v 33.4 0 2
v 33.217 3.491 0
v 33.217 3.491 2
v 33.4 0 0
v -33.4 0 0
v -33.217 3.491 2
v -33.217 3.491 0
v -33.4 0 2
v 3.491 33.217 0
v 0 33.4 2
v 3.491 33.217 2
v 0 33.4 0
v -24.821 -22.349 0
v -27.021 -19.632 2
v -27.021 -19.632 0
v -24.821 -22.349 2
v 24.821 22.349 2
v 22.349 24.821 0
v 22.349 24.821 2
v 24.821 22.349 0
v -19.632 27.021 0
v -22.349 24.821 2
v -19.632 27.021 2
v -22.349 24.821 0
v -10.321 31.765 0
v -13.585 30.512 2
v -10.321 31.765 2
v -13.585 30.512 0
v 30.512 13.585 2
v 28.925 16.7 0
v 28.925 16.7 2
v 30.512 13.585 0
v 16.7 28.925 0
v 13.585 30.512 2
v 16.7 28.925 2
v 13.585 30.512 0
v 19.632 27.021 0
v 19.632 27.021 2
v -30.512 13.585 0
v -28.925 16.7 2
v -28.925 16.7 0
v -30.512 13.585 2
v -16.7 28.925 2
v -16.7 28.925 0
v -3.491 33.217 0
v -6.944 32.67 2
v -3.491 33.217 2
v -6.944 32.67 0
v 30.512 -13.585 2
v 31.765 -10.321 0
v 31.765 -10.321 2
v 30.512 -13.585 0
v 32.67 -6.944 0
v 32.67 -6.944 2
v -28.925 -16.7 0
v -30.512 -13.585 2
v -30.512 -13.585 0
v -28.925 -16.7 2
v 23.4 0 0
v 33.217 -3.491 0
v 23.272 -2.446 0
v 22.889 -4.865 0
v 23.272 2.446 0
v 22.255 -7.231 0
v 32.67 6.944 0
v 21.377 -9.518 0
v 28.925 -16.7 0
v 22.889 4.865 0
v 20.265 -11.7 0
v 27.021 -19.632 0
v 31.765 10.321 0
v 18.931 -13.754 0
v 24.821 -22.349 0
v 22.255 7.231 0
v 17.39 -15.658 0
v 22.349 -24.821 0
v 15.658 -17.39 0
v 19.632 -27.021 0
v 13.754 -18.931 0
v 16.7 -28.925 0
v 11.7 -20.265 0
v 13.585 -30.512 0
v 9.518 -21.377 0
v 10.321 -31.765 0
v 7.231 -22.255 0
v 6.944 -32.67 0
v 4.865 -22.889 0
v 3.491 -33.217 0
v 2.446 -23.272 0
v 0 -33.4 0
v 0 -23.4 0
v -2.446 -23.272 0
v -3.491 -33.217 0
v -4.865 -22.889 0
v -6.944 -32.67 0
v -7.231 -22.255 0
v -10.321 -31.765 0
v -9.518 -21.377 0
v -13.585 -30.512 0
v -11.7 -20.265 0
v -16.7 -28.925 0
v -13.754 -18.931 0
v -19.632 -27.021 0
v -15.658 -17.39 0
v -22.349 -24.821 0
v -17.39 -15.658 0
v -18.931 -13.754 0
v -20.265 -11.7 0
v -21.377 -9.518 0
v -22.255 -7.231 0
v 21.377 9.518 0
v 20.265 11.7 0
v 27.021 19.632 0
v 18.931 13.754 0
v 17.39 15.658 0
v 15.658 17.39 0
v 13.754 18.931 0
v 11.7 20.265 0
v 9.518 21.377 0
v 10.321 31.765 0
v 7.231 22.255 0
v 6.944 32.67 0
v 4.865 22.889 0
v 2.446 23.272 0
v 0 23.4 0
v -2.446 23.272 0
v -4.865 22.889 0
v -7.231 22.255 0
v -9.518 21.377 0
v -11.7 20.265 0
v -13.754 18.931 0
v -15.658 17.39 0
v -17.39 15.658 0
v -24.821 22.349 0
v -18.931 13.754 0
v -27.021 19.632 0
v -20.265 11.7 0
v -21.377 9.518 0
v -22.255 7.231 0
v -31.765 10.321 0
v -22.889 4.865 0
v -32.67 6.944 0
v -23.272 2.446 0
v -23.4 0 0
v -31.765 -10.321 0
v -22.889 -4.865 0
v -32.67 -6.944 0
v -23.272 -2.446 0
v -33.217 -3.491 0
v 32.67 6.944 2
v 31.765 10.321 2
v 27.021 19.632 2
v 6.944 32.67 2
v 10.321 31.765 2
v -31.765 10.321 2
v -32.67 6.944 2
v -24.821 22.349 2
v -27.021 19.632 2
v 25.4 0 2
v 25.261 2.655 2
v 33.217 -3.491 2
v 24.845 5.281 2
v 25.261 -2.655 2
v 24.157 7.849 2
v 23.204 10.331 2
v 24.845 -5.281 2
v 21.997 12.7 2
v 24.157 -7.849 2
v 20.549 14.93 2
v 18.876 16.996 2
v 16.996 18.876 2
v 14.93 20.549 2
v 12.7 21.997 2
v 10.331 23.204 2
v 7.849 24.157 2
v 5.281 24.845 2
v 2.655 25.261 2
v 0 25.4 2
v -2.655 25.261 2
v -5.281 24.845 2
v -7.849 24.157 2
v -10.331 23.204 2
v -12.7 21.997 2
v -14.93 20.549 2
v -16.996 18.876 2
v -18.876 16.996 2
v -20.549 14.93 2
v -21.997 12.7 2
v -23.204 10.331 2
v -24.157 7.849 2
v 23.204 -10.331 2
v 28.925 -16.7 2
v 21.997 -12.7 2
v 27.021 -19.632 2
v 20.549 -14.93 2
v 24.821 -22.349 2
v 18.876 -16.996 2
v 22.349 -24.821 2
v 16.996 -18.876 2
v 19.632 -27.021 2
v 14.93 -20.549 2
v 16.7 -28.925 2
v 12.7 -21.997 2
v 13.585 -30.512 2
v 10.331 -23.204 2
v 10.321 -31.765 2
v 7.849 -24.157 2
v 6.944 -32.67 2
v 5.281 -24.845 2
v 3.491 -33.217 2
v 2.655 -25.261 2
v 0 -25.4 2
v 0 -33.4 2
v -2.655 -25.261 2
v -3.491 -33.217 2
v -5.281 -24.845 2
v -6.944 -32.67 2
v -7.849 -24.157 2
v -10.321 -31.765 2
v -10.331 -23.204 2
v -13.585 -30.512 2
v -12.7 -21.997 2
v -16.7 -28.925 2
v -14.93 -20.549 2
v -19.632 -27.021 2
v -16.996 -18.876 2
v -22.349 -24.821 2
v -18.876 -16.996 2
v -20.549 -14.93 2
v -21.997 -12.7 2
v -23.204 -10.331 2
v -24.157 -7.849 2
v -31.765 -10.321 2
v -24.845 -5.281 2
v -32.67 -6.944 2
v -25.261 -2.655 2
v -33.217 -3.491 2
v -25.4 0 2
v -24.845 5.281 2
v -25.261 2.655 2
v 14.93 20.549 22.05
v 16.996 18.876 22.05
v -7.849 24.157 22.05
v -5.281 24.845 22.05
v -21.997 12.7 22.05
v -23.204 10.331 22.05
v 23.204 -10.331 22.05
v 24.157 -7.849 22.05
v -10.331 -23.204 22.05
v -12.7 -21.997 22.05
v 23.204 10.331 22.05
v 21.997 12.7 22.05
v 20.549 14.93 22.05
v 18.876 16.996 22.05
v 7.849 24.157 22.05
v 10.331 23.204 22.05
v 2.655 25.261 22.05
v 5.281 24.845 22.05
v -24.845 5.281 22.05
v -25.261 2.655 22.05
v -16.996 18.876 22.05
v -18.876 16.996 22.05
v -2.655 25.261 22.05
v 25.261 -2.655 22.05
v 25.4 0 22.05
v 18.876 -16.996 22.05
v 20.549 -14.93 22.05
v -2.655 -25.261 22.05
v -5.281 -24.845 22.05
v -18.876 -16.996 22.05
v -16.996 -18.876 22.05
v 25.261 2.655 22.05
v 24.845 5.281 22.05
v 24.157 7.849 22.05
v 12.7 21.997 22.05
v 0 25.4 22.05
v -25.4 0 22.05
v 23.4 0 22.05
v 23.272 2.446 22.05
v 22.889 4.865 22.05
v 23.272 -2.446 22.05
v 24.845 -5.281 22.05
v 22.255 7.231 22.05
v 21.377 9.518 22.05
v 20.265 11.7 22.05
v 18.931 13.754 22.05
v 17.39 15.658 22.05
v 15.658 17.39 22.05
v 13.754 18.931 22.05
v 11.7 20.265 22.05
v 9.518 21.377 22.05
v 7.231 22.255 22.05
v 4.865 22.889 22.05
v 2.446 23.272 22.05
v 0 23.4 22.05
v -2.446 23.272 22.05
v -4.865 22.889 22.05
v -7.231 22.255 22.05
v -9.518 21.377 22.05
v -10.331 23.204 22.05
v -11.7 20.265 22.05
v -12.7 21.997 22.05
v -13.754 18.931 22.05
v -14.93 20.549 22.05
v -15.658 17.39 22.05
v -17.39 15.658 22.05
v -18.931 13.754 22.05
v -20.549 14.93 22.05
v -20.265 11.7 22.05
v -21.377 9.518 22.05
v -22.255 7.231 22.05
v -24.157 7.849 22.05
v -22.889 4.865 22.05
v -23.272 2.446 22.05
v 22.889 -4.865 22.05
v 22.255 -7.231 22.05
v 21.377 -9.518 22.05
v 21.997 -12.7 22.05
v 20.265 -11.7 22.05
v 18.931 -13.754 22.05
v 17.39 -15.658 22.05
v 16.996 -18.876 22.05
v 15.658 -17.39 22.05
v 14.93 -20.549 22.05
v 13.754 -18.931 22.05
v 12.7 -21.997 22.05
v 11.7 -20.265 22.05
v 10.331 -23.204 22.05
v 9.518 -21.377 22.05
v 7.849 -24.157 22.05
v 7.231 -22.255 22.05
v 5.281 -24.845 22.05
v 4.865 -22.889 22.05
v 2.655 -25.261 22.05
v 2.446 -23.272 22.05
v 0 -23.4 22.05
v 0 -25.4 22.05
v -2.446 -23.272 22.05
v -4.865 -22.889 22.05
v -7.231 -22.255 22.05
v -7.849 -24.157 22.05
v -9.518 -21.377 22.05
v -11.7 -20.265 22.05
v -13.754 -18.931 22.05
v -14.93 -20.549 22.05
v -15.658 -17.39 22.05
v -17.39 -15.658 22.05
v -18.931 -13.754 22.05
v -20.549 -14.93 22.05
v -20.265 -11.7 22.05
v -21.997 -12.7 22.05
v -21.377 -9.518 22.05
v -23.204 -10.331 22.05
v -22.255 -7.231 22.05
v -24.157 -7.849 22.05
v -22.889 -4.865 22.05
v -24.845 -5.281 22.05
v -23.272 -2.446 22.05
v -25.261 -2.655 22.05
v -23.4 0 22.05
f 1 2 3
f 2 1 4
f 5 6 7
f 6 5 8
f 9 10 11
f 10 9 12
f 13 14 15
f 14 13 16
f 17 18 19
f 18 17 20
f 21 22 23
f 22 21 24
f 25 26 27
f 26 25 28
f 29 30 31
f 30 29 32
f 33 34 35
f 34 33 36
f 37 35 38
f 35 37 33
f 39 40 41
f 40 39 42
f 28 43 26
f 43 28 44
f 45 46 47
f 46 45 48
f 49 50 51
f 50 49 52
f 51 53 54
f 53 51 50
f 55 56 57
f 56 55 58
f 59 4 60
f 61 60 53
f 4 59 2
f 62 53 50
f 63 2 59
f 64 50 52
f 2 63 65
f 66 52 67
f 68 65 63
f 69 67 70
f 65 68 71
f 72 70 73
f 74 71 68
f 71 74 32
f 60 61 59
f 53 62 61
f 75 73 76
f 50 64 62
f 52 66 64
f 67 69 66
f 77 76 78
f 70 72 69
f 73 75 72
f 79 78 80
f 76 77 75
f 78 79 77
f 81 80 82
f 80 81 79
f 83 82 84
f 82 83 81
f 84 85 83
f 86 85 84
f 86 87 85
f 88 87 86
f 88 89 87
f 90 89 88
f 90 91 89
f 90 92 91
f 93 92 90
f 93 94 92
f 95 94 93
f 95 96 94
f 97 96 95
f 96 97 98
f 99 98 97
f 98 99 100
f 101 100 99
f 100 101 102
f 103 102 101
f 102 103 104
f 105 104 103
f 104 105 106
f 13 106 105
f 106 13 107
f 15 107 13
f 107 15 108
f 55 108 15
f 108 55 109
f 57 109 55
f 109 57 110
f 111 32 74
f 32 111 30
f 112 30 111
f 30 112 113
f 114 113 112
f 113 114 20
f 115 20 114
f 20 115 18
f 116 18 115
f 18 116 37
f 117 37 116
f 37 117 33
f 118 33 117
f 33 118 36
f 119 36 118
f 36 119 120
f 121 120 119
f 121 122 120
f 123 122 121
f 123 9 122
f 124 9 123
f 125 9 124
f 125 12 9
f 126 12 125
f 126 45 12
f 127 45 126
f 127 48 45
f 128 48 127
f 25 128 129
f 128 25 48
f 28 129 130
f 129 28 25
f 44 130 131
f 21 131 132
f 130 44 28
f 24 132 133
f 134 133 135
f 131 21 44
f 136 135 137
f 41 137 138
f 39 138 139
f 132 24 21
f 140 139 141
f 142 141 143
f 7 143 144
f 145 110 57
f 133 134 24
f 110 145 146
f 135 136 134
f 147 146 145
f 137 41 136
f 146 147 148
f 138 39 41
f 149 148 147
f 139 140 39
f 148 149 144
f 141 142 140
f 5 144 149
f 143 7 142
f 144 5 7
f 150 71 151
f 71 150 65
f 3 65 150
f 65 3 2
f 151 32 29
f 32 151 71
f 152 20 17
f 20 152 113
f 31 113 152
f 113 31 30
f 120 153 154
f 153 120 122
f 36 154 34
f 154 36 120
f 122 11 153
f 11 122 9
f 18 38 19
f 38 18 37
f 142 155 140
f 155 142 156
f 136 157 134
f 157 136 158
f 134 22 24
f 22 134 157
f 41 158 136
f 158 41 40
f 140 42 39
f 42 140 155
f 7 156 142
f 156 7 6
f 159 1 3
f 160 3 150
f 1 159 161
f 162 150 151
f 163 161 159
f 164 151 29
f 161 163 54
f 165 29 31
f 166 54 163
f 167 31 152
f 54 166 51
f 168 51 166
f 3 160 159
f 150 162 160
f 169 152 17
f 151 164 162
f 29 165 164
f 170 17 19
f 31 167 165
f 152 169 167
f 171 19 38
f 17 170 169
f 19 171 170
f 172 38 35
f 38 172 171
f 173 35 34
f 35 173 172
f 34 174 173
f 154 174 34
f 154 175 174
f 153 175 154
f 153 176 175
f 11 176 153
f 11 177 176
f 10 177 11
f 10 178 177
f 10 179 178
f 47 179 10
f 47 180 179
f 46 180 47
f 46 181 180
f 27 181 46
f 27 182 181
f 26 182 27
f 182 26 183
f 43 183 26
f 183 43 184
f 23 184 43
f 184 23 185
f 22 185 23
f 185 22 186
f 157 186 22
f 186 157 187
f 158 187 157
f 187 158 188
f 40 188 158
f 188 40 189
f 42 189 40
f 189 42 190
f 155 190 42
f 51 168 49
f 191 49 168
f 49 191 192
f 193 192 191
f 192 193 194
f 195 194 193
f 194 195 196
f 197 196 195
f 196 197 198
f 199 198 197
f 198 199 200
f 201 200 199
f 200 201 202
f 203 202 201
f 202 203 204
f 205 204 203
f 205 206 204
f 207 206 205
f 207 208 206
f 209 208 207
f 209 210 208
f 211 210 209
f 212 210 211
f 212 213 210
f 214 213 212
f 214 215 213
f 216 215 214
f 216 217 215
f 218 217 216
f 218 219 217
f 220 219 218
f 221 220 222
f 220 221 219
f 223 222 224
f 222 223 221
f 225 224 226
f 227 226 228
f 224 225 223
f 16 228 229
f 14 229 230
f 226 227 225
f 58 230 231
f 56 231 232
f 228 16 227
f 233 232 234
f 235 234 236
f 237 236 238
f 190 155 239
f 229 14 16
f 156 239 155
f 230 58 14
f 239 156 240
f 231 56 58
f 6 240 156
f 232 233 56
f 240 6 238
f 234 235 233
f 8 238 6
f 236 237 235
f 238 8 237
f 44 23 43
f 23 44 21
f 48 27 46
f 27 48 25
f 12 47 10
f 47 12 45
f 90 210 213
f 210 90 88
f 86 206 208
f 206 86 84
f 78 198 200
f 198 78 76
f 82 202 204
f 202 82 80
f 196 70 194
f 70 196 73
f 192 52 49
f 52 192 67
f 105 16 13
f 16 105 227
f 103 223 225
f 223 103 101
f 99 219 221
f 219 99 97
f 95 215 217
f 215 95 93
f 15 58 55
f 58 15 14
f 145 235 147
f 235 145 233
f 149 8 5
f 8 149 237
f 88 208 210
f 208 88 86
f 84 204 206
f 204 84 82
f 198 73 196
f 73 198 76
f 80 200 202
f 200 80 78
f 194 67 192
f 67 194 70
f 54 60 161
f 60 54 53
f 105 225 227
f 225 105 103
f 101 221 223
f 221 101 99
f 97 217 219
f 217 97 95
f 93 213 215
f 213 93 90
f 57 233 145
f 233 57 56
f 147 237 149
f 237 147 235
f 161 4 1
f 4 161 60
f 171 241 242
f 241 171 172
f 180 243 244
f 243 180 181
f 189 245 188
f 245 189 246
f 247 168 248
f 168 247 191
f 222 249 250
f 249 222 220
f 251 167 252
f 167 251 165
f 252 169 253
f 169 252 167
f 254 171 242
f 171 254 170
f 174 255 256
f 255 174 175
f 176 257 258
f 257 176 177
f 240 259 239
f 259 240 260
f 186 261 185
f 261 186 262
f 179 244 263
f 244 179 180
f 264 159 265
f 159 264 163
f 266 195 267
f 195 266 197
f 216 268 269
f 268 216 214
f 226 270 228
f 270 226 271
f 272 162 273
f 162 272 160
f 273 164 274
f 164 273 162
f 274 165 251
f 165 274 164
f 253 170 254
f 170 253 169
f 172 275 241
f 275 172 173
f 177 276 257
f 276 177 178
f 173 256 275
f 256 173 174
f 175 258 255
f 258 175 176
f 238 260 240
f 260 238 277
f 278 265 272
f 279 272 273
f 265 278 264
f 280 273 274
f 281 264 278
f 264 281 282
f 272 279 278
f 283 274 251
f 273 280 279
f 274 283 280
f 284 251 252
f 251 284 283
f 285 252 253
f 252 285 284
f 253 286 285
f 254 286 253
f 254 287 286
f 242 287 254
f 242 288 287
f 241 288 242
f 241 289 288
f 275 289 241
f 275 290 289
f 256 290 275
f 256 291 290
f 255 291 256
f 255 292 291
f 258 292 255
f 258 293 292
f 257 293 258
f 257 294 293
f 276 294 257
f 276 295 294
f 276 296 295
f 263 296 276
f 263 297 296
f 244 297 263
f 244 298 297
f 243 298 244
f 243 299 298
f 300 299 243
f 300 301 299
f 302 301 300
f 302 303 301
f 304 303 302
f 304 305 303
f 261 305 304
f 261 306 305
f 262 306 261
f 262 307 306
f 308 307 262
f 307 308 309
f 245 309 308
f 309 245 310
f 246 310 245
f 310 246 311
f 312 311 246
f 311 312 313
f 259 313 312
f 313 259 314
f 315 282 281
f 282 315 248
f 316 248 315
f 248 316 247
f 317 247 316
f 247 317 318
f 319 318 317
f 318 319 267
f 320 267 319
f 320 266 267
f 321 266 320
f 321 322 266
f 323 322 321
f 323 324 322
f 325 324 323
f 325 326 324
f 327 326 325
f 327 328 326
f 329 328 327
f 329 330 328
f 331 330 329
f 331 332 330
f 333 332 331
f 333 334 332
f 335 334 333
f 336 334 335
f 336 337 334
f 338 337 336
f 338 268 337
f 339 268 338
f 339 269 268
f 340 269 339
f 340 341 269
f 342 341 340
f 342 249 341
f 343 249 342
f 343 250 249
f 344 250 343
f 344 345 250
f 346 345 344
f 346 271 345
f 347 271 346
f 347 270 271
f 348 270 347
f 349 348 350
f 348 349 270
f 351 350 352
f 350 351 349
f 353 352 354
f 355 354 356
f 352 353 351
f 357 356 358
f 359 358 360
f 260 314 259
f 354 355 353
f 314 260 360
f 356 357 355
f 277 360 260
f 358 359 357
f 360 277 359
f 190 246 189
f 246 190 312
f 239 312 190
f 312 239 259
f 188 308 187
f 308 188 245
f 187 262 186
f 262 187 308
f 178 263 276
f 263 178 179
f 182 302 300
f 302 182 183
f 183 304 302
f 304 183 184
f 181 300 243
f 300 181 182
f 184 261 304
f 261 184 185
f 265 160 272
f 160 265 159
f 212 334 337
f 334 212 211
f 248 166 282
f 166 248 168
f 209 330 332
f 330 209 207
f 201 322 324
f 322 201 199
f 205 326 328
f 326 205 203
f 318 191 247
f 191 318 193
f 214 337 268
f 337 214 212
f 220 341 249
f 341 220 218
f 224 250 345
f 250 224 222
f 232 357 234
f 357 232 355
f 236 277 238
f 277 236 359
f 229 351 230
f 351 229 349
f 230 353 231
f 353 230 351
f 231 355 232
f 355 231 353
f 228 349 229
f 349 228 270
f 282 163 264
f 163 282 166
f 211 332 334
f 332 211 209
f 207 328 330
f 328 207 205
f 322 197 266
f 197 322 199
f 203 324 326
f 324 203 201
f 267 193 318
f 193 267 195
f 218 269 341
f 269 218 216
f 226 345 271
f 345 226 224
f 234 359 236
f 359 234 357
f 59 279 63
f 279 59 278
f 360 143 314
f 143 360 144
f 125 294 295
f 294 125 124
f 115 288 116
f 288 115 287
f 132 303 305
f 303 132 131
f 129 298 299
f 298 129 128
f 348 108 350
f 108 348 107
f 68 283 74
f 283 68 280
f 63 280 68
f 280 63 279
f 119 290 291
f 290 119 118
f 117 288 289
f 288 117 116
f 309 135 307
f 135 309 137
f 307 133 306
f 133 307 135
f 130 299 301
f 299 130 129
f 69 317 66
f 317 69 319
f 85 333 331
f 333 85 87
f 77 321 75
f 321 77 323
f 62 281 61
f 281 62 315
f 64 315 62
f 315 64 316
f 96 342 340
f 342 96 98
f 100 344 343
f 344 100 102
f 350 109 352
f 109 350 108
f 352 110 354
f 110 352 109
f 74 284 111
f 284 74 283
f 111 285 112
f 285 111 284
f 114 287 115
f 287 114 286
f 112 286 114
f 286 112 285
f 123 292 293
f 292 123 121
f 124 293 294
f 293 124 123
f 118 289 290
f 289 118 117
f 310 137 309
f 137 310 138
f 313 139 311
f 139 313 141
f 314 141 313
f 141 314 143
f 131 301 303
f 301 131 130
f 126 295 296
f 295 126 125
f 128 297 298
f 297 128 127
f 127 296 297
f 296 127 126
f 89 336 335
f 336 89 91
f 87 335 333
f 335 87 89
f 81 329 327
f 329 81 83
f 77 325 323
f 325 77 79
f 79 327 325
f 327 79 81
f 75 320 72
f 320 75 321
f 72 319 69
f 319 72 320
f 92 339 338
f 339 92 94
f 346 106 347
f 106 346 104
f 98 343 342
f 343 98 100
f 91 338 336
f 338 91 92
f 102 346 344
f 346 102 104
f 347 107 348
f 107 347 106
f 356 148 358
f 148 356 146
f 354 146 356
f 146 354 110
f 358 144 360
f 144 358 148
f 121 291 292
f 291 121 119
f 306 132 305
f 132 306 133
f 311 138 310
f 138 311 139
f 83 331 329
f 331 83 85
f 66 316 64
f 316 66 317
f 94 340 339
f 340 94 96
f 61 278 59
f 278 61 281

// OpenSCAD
difference(){
	union() {
		union() {
			cylinder($fn = 60, h = 2, r = 33.4000000000);
			cylinder($fn = 60, h = 22.0500000000, r = 25.4000000000);
		}
	}
	/* Holes Below*/
	union(){
		union(){
			translate(v = [0, 0, -1]) {
				cylinder($fn = 60, h = 24.0500000000, r = 23.4000000000);
			}
		}
	} /* End Holes */ 
}
